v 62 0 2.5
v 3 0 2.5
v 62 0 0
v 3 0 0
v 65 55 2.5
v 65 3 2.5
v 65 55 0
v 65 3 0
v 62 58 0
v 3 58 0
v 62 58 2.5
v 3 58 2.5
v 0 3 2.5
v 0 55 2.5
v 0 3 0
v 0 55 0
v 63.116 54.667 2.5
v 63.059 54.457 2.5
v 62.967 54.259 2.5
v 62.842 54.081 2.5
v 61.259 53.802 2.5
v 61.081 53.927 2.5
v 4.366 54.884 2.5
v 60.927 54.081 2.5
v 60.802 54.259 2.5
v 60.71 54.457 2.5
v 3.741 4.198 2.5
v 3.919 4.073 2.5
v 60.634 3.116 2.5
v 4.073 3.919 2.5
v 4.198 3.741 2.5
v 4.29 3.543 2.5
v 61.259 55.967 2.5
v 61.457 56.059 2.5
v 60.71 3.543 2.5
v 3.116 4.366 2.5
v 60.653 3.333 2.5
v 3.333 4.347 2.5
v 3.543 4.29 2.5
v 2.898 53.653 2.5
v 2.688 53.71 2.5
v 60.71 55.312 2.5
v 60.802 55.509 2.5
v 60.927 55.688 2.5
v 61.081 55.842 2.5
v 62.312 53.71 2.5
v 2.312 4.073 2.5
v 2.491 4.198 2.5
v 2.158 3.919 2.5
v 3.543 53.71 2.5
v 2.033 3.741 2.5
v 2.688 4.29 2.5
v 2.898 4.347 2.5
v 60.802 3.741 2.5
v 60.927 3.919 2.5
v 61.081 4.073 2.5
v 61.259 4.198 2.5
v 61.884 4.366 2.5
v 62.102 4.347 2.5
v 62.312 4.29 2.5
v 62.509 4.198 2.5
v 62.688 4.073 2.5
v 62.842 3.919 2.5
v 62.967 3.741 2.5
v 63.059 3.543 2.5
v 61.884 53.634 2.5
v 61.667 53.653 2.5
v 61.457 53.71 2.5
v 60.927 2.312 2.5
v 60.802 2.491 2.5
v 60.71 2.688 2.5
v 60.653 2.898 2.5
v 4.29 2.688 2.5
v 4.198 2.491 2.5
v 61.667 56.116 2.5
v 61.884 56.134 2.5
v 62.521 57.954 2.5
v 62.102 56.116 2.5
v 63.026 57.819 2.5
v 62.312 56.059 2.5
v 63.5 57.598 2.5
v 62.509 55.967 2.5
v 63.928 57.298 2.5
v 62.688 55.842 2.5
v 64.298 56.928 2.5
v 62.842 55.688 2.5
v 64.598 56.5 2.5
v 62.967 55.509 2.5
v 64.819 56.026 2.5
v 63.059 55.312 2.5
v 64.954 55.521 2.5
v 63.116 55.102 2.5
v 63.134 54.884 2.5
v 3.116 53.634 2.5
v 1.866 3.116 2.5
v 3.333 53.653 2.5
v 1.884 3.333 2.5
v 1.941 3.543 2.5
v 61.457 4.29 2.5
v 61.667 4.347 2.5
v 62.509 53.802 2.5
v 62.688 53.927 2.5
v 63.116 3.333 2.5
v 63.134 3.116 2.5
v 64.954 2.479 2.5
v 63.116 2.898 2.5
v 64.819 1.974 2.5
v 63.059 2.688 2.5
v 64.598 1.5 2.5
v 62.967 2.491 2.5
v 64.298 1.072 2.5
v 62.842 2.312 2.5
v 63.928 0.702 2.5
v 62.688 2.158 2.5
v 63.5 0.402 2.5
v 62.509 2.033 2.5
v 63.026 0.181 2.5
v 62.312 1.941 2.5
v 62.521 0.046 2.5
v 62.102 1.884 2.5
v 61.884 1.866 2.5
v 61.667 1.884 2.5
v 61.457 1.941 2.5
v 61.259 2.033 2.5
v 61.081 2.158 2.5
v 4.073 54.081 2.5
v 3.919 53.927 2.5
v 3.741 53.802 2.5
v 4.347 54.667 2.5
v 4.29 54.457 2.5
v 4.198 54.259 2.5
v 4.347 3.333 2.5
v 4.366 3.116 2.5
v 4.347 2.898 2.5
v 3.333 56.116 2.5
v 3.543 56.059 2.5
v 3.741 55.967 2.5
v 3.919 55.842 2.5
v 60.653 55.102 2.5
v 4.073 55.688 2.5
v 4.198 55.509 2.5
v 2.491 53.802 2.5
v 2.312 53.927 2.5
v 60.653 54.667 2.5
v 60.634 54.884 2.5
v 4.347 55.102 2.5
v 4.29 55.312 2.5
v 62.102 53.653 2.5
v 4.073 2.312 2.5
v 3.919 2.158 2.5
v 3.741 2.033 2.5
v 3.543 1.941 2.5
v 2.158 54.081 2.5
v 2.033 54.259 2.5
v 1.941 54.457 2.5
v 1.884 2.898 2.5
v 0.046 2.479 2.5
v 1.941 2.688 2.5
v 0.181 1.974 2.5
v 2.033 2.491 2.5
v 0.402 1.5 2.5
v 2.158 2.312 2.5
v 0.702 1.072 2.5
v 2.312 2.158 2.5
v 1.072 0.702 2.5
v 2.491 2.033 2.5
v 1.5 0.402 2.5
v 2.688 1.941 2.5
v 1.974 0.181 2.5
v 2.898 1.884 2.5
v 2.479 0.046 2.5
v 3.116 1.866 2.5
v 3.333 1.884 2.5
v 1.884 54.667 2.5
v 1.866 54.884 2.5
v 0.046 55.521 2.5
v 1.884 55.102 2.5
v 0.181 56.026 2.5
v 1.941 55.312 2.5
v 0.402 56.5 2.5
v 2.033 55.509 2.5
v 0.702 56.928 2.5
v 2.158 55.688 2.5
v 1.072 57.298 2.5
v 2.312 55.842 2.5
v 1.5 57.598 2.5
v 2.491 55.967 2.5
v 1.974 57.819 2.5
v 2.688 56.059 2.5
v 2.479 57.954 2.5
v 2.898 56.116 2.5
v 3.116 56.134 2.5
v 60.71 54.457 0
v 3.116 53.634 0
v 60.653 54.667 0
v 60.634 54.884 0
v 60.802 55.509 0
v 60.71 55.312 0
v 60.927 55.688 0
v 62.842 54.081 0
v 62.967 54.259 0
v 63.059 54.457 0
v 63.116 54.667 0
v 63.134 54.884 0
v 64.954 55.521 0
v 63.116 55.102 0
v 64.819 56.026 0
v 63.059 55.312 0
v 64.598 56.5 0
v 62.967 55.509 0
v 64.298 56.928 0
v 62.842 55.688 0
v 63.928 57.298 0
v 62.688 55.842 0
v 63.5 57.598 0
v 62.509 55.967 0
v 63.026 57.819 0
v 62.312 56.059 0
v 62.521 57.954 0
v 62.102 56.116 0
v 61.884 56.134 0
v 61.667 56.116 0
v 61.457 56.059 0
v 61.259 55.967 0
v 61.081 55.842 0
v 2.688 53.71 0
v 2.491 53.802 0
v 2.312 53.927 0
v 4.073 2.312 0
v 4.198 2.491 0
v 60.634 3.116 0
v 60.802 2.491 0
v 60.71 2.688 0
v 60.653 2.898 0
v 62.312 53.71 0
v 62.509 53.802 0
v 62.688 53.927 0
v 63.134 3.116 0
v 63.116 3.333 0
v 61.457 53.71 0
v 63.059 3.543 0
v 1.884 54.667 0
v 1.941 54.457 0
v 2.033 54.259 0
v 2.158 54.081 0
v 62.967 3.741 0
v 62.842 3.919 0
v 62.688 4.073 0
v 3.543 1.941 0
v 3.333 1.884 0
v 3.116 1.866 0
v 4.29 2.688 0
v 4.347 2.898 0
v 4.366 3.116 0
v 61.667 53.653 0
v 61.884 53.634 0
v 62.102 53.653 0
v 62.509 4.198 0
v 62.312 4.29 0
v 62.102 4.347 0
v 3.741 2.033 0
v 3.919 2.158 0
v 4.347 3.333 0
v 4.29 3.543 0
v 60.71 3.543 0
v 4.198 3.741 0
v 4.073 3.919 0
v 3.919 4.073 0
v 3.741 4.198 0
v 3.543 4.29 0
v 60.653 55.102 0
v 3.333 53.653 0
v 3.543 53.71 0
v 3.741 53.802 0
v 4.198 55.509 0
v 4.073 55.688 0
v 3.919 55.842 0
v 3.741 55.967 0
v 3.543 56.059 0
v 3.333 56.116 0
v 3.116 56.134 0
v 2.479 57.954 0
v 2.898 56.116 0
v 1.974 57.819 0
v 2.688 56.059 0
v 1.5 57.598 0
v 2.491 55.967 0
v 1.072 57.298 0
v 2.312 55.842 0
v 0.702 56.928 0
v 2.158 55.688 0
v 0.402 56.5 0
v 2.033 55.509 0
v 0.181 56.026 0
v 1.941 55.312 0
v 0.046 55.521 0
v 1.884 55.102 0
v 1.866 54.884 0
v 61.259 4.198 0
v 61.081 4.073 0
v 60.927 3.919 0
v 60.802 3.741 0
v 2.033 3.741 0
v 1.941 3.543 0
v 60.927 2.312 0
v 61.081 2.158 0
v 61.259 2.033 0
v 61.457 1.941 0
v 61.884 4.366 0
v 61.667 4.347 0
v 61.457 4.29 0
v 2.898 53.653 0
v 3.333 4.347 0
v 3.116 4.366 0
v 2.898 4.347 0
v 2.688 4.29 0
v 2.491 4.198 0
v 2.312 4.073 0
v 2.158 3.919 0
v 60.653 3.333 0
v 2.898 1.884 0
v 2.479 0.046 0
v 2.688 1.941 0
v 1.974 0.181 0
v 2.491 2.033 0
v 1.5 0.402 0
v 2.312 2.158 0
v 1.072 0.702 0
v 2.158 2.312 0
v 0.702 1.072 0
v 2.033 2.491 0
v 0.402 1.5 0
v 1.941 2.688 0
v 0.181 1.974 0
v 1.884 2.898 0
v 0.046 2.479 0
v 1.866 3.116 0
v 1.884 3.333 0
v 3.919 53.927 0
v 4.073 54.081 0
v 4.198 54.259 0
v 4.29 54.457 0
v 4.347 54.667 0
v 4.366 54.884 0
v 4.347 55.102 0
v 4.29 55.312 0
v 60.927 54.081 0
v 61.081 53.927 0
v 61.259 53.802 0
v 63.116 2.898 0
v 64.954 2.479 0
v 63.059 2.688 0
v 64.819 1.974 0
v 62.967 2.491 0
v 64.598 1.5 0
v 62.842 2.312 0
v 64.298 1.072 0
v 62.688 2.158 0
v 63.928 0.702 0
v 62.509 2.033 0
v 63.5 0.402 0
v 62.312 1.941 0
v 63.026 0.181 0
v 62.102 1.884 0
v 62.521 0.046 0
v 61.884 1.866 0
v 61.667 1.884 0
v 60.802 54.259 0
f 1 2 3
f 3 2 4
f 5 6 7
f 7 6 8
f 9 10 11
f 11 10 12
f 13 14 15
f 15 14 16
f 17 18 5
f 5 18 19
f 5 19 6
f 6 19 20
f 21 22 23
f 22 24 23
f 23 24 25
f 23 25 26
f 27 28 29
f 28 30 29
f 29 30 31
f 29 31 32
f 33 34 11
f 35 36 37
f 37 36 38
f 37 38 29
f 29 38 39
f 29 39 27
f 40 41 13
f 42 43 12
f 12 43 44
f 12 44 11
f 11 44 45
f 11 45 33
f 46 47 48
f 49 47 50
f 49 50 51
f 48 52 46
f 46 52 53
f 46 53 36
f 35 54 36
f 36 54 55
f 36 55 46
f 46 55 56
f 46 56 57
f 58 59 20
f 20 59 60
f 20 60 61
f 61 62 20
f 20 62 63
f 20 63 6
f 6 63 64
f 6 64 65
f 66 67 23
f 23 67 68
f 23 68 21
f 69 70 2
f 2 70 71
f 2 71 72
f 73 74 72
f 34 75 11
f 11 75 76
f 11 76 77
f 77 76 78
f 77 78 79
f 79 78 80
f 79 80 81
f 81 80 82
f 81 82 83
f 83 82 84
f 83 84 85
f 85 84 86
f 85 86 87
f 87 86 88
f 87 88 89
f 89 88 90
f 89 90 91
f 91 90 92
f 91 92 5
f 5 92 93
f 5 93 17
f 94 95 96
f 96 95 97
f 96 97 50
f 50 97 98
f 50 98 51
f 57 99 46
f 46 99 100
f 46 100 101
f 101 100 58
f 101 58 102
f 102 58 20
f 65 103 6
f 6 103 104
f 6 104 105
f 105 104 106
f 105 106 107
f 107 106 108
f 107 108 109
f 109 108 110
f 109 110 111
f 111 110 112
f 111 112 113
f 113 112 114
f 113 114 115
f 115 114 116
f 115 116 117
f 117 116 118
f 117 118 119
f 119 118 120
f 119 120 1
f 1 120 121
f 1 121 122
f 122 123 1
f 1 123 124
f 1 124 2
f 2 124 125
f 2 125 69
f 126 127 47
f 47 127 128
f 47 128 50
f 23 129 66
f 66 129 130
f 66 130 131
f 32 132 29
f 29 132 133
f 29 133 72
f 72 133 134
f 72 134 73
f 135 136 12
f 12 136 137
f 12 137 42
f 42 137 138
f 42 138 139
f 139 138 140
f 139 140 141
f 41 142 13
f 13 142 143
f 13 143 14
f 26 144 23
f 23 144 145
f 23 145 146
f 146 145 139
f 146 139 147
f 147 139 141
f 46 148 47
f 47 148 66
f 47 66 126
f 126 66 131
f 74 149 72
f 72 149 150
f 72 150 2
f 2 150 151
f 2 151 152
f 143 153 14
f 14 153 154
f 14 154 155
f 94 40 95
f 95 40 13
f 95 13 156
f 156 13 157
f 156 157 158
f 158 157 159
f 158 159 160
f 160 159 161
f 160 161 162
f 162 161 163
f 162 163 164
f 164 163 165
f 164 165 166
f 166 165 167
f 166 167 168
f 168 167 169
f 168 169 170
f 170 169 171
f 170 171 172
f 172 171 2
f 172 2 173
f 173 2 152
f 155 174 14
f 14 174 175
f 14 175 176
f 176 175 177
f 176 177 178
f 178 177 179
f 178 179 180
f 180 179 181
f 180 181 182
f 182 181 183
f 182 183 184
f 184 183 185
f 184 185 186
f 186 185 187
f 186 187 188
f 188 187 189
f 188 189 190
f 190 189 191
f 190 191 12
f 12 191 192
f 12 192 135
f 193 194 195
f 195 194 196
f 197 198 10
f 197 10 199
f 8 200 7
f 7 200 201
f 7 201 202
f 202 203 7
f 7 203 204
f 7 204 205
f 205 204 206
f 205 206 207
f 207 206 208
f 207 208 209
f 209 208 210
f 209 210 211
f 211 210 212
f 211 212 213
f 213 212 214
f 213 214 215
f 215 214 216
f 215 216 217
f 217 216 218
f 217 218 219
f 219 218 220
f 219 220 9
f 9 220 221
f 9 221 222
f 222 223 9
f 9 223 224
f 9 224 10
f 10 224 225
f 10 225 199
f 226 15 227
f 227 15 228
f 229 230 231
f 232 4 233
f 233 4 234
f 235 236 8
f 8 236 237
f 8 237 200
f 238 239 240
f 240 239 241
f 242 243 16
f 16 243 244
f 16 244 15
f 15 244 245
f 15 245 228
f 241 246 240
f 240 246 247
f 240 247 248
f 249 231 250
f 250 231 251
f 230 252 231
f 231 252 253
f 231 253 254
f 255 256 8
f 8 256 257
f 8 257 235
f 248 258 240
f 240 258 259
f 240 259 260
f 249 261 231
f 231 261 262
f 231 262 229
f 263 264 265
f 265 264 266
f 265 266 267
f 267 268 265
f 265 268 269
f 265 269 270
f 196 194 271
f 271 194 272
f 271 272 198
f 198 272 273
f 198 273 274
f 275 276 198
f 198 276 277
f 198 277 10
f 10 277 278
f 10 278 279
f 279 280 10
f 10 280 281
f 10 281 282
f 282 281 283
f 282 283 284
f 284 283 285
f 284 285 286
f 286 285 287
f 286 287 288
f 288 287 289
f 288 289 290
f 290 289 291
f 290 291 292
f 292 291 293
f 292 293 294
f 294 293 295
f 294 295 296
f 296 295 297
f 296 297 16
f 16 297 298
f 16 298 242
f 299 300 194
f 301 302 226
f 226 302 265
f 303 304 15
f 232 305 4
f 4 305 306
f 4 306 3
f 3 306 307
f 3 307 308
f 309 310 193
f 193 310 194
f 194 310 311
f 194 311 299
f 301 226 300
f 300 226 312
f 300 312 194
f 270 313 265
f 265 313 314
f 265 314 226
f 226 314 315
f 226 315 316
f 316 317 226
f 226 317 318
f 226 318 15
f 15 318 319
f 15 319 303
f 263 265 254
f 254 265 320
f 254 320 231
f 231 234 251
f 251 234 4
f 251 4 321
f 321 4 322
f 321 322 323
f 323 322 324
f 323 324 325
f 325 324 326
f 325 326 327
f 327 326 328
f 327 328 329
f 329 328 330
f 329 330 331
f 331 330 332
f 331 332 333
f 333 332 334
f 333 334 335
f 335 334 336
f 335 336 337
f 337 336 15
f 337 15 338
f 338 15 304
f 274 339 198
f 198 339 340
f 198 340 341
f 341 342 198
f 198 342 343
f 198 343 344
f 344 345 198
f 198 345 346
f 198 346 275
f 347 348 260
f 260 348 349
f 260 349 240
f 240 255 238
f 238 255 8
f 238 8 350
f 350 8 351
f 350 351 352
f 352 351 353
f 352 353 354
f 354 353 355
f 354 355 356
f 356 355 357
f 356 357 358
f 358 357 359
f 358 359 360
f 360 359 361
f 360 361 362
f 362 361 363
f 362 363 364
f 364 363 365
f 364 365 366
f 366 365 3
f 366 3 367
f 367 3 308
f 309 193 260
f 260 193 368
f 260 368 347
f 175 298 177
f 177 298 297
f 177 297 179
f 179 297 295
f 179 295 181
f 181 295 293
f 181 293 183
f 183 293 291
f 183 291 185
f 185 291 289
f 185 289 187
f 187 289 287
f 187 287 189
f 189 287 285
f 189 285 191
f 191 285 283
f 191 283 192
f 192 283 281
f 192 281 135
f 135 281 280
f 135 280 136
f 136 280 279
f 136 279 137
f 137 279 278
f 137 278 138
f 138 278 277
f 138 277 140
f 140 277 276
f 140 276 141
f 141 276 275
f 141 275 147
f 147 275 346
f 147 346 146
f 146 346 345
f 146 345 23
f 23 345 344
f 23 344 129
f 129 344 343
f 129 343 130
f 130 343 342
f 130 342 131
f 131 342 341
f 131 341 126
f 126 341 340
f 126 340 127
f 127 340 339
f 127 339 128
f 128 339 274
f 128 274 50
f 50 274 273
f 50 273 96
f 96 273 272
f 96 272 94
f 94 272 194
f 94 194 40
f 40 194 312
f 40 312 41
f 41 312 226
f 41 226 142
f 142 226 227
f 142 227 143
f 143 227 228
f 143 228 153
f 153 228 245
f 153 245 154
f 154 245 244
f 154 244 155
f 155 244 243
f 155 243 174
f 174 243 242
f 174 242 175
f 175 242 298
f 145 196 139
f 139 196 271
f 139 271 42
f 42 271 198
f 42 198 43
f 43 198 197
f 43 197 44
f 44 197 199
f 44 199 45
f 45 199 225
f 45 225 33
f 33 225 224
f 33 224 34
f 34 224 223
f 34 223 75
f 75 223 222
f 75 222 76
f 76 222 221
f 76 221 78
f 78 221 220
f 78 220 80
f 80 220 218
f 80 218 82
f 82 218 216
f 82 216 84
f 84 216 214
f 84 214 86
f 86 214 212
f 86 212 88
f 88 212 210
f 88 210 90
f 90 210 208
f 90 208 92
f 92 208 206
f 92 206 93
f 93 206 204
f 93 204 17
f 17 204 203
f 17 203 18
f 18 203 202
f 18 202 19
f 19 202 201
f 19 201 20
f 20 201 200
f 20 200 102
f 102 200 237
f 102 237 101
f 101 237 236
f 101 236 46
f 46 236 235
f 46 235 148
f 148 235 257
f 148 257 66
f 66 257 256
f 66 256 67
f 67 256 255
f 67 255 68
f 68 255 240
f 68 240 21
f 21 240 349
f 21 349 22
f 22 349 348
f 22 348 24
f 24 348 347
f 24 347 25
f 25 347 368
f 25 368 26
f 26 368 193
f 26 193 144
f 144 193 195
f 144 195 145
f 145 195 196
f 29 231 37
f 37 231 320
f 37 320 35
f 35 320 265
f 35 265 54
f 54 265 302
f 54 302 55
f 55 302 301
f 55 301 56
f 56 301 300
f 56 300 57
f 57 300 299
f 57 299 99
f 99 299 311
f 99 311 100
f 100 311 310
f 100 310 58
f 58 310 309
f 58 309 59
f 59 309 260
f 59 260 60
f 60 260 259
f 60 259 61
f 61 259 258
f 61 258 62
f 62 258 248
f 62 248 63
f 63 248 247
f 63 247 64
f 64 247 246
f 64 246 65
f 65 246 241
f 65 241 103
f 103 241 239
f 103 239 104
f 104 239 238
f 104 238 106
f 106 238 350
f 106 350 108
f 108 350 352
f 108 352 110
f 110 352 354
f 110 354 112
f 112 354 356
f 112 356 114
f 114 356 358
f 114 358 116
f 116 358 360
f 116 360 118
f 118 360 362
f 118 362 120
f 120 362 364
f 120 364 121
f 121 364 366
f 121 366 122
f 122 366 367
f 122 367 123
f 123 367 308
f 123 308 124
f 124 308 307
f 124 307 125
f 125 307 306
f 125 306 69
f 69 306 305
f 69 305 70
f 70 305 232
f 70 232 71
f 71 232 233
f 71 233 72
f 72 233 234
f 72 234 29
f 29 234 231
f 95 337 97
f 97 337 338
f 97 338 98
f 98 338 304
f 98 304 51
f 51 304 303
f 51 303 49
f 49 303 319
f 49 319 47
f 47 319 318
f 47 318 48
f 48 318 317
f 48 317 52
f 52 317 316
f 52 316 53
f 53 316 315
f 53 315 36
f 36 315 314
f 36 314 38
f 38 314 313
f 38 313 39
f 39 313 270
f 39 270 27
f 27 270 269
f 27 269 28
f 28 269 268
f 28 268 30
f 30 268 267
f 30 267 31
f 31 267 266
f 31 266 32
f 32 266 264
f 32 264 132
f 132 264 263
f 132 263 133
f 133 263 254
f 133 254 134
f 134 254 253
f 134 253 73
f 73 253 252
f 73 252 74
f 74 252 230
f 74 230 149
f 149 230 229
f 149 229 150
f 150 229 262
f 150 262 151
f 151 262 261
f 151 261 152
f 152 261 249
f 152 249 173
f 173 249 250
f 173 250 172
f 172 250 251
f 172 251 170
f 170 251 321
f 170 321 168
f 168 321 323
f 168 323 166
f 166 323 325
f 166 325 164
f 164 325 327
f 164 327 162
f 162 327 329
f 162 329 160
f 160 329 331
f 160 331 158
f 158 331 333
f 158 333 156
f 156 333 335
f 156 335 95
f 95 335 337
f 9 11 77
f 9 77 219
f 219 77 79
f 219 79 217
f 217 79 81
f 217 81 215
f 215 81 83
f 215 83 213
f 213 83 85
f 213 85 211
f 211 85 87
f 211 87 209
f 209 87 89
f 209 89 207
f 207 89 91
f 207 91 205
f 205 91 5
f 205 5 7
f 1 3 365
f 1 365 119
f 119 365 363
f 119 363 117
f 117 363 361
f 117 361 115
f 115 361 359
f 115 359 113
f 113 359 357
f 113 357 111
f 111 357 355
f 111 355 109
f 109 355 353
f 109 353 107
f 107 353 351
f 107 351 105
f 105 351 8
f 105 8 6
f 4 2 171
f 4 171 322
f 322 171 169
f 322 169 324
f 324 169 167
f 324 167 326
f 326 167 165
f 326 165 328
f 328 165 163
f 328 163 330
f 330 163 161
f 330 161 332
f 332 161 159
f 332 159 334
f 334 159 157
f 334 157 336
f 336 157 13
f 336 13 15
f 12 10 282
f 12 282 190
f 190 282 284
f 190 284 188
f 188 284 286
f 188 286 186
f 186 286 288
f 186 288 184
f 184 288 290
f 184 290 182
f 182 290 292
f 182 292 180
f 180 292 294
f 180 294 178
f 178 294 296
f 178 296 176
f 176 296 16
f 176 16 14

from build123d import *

# Parameters (mm, degrees)
BASE_SKETCH_W       = 65
BASE_SKETCH_H       = 58
BOSS_EXTRUDE2_DEPTH = 2.5
MOUNTING_HOLES_R    = 1.25
CUT_EXTRUDE5_DEPTH  = 2.5
FILLET1_R           = 3


with BuildPart() as part:
    # Base Sketch → Boss-Extrude2 (new body)
    with BuildSketch(Plane.XY):
        with Locations((32.5, 29)):
            Rectangle(BASE_SKETCH_W, BASE_SKETCH_H)
    extrude(amount=BOSS_EXTRUDE2_DEPTH)

    # Mounting Holes → Cut-Extrude5 (cut)
    with BuildSketch(Plane.XY):
        with Locations((3.115503651, 54.884496349)):
            Circle(MOUNTING_HOLES_R)
        with Locations((61.884496349, 54.884496349)):
            Circle(MOUNTING_HOLES_R)
        with Locations((61.884496349, 3.115503651)):
            Circle(MOUNTING_HOLES_R)
        with Locations((3.115503651, 3.115503651)):
            Circle(MOUNTING_HOLES_R)
    extrude(amount=CUT_EXTRUDE5_DEPTH, mode=Mode.SUBTRACT)

    # Fillet1
    fillet1_edges = [part.edges().sort_by_distance(p)[0] for p in [
        (0, 0, 1.25),
        (0, 58, 1.25),
        (65, 58, 1.25),
        (65, 0, 1.25),
    ]]
    fillet(fillet1_edges, radius=FILLET1_R)


solid = part.part
